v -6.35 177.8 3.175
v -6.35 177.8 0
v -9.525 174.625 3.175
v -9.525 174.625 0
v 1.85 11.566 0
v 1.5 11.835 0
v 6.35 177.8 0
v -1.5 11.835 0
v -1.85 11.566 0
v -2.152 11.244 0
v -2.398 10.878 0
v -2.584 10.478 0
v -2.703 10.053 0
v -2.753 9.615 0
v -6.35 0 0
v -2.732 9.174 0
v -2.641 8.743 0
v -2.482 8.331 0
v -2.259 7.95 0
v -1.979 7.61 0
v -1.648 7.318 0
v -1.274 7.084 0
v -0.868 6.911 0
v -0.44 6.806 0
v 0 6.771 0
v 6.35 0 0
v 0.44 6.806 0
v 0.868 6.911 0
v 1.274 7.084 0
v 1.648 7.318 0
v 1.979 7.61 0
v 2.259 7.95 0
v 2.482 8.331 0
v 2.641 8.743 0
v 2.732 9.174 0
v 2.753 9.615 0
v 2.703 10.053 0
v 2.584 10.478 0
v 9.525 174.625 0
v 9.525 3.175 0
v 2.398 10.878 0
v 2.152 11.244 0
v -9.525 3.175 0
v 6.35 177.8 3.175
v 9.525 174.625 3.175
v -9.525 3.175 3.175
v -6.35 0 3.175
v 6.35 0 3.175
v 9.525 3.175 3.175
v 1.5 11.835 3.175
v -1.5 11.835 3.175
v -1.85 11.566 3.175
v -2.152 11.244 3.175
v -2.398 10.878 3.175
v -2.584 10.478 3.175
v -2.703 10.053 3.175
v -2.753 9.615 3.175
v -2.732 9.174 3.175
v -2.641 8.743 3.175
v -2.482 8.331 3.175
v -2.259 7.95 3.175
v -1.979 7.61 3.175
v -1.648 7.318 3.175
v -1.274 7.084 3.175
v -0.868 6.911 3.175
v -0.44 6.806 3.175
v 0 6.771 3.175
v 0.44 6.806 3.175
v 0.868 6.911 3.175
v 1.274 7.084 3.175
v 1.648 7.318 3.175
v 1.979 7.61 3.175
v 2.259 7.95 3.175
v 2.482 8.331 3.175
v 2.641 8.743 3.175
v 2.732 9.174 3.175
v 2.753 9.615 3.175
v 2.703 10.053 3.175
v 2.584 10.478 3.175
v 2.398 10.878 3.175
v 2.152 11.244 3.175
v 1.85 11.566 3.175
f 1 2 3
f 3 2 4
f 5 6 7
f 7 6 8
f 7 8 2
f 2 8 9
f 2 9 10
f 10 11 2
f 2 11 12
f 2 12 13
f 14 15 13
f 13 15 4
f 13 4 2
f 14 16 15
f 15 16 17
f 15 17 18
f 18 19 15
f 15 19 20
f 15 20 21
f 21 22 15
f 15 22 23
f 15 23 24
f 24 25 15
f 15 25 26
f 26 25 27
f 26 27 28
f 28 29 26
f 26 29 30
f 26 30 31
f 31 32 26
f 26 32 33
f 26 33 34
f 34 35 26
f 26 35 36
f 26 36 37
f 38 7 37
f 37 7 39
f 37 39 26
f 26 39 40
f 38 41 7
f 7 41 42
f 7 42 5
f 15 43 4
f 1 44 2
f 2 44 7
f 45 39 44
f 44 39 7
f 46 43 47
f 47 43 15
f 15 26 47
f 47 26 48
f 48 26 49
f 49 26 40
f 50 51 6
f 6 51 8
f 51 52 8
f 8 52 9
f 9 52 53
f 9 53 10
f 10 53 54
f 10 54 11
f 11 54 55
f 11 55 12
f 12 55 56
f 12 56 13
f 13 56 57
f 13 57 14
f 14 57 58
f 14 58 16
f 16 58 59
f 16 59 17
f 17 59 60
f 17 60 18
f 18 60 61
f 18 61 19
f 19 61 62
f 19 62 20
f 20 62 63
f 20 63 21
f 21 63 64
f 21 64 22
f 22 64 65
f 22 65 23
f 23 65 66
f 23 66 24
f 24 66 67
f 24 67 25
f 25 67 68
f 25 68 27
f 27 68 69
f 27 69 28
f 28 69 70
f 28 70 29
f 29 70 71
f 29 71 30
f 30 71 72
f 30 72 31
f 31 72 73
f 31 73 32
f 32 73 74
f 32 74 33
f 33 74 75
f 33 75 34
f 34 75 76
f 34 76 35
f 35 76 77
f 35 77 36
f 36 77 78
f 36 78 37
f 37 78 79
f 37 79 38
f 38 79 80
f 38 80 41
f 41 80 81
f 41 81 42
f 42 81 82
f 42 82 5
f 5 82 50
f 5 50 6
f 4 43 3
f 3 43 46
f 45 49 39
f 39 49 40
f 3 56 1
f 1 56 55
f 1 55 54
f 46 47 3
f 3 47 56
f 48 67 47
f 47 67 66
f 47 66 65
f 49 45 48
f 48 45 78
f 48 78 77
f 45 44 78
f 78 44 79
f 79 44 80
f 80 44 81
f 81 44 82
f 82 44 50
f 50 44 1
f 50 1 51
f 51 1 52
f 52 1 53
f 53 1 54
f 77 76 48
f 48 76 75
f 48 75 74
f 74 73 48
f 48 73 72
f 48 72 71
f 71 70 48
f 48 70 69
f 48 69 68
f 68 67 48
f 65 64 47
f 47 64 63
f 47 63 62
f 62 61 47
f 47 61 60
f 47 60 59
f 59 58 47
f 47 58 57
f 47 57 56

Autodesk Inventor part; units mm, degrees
ref_plane "YZ Plane" through (0, 0, 0) normal (1, 0, 0) x (0, 1, 0)
ref_plane "XZ Plane" through (0, 0, 0) normal (0, 1, 0) x (-1, 0, 0)
ref_plane "XY Plane" through (0, 0, 0) normal (0, 0, 1) x (1, 0, 0)
sketch "Sketch1" plane through (0, 0, 0) normal (0, 0, 1) x (1, 0, 0)
  line L0 (-9.525, 0) -> (9.525, 0)
  line L1 (9.525, 0) -> (9.525, 177.8)
  line L2 (9.525, 177.8) -> (-9.525, 177.8)
  line L3 (-9.525, 177.8) -> (-9.525, 0)
  point P0 (0, 0)
  point P1 (0, 0)
  dimension "d0" = 19.05
  dimension "d1" = 177.8
extrude "Extrusion1" add sketch "Sketch1" along normal blind 3.175
sketch "Sketch2" plane through (0, 0, 3.175) normal (0, 0, 1) x (1, 0, 0)
  arc A0 (-1.5, 11.8347) -> (1.5, 11.8347) centre (0, 9.525) ccw
  line L0 (-1.5, 11.8347) -> (1.5, 11.8347)
  line L1 (9.525, 0) -> (9.525, 177.8) projected
  line L2 (-9.525, 0) -> (9.525, 0) projected
  point P0 (0, 0)
  point P1 (0, 0)
  dimension "d4" = 2.754
  dimension "d5" = 3
  dimension "d8" = 9.525
  dimension "d9" = 9.525
extrude "Extrusion2" cut sketch "Sketch2" against normal blind 3.175
chamfer "Chamfer1" distance 3.175 angle 45 4 edges at (9.525, 0, 1.5875) (-9.525, 0, 1.5875) (9.525, 177.8, 1.5875) (-9.525, 177.8, 1.5875)
equation "\"d0\" = arm_distal_width"
equation "\"d1\" = arm_distal_length"
equation "\"d2\" = arm_distal_thickness"
equation "\"d9\" = d8"
equation "\"d10\" = arm_distal_thickness"
equation "\"base_width\" = 127"
equation "\"base_length\" = 177.8"
equation "\"base_height\" = 12.7"
equation "\"base_motor_standoff_length\" = 63.5"
equation "\"base_motor_standoff_height\" = 12.7"
equation "\"base_motor_standoff_thickness\" = 3.175"
equation "\"base_motor_standoff_offset\" = 0"
equation "\"waist_motor_cutout_diameter\" = 50.8"
equation "\"waist_cutout_overlap\" = 6.35"
equation "\"retention_poles_diameter\" = 6.35"
equation "\"turntable_bed_depth\" = 3.175"
equation "\"turntable_diameter\" = 101.6"
equation "\"turntable_spur_thickness\" = 6.35"
equation "\"turntable_thickness\" = 9.525"
equation "\"spine_diameter\" = 31.75"
equation "\"shoulder_height_offset\" = 25.4"
equation "\"shoulder_width\" = 69.85"
equation "\"shoulder_length\" = 50.8"
equation "\"shoulder_wall_thickness\" = 4.7625"
equation "\"arm_proximal_gear_diameter\" = 63.5"
equation "\"arm_proximal_gear_thickness\" = 9.525"
equation "\"shoulder_motor_gear_diameter\" = 25.4"
equation "\"arm_proximal_length\" = 228.6"
equation "\"arm_proximal_width\" = 12.7"
equation "\"arm_distal_length\" = 177.8"
equation "\"arm_distal_width\" = 19.05"
equation "\"arm_distal_thickness\" = 3.175"
equation "\"arm_proximal_thickness\" = 6.35"
equation "\"shoulder_motor_boss\" = 25.4"
equation "\"shoulder_gear_shaft_diameter\" = 12.7"
equation "\"shoulder_gear_thickness\" = 6.35"
equation "\"shoulder_gear_diameter\" = 63.5"
equation "\"spine_height\" = 25.4"
equation "\"turntable_retention_shaft_length\" = 152.4"
equation "\"turntable_height\" = 9.525"
equation "\"turntable_spur_width\" = 6.35"
equation "\"turntable_retention_shaft_diameter\" = 6.35"
equation "\"turntable_motor_support_width\" = 63.5"
equation "\"turntable_motor_boss\" = 25.4"
equation "\"turntable_motor_support_height\" = 25.4"
equation "\"turntable_motor_support_thickness\" = 3.175"
equation "\"base_cutout_diameter\" = 44.45"
equation "\"base_cutout_contact_angle\" = 70deg"
equation "\"arm_proximal_central_diameter\" = 25.4"
equation "\"arm_proximal_motor_boss\" = 25.4"
equation "\"turntable_ring_height\" = 9.525"
equation "\"turntable_ring_diameter\" = 19.05"
properties part number "arm_distal"
